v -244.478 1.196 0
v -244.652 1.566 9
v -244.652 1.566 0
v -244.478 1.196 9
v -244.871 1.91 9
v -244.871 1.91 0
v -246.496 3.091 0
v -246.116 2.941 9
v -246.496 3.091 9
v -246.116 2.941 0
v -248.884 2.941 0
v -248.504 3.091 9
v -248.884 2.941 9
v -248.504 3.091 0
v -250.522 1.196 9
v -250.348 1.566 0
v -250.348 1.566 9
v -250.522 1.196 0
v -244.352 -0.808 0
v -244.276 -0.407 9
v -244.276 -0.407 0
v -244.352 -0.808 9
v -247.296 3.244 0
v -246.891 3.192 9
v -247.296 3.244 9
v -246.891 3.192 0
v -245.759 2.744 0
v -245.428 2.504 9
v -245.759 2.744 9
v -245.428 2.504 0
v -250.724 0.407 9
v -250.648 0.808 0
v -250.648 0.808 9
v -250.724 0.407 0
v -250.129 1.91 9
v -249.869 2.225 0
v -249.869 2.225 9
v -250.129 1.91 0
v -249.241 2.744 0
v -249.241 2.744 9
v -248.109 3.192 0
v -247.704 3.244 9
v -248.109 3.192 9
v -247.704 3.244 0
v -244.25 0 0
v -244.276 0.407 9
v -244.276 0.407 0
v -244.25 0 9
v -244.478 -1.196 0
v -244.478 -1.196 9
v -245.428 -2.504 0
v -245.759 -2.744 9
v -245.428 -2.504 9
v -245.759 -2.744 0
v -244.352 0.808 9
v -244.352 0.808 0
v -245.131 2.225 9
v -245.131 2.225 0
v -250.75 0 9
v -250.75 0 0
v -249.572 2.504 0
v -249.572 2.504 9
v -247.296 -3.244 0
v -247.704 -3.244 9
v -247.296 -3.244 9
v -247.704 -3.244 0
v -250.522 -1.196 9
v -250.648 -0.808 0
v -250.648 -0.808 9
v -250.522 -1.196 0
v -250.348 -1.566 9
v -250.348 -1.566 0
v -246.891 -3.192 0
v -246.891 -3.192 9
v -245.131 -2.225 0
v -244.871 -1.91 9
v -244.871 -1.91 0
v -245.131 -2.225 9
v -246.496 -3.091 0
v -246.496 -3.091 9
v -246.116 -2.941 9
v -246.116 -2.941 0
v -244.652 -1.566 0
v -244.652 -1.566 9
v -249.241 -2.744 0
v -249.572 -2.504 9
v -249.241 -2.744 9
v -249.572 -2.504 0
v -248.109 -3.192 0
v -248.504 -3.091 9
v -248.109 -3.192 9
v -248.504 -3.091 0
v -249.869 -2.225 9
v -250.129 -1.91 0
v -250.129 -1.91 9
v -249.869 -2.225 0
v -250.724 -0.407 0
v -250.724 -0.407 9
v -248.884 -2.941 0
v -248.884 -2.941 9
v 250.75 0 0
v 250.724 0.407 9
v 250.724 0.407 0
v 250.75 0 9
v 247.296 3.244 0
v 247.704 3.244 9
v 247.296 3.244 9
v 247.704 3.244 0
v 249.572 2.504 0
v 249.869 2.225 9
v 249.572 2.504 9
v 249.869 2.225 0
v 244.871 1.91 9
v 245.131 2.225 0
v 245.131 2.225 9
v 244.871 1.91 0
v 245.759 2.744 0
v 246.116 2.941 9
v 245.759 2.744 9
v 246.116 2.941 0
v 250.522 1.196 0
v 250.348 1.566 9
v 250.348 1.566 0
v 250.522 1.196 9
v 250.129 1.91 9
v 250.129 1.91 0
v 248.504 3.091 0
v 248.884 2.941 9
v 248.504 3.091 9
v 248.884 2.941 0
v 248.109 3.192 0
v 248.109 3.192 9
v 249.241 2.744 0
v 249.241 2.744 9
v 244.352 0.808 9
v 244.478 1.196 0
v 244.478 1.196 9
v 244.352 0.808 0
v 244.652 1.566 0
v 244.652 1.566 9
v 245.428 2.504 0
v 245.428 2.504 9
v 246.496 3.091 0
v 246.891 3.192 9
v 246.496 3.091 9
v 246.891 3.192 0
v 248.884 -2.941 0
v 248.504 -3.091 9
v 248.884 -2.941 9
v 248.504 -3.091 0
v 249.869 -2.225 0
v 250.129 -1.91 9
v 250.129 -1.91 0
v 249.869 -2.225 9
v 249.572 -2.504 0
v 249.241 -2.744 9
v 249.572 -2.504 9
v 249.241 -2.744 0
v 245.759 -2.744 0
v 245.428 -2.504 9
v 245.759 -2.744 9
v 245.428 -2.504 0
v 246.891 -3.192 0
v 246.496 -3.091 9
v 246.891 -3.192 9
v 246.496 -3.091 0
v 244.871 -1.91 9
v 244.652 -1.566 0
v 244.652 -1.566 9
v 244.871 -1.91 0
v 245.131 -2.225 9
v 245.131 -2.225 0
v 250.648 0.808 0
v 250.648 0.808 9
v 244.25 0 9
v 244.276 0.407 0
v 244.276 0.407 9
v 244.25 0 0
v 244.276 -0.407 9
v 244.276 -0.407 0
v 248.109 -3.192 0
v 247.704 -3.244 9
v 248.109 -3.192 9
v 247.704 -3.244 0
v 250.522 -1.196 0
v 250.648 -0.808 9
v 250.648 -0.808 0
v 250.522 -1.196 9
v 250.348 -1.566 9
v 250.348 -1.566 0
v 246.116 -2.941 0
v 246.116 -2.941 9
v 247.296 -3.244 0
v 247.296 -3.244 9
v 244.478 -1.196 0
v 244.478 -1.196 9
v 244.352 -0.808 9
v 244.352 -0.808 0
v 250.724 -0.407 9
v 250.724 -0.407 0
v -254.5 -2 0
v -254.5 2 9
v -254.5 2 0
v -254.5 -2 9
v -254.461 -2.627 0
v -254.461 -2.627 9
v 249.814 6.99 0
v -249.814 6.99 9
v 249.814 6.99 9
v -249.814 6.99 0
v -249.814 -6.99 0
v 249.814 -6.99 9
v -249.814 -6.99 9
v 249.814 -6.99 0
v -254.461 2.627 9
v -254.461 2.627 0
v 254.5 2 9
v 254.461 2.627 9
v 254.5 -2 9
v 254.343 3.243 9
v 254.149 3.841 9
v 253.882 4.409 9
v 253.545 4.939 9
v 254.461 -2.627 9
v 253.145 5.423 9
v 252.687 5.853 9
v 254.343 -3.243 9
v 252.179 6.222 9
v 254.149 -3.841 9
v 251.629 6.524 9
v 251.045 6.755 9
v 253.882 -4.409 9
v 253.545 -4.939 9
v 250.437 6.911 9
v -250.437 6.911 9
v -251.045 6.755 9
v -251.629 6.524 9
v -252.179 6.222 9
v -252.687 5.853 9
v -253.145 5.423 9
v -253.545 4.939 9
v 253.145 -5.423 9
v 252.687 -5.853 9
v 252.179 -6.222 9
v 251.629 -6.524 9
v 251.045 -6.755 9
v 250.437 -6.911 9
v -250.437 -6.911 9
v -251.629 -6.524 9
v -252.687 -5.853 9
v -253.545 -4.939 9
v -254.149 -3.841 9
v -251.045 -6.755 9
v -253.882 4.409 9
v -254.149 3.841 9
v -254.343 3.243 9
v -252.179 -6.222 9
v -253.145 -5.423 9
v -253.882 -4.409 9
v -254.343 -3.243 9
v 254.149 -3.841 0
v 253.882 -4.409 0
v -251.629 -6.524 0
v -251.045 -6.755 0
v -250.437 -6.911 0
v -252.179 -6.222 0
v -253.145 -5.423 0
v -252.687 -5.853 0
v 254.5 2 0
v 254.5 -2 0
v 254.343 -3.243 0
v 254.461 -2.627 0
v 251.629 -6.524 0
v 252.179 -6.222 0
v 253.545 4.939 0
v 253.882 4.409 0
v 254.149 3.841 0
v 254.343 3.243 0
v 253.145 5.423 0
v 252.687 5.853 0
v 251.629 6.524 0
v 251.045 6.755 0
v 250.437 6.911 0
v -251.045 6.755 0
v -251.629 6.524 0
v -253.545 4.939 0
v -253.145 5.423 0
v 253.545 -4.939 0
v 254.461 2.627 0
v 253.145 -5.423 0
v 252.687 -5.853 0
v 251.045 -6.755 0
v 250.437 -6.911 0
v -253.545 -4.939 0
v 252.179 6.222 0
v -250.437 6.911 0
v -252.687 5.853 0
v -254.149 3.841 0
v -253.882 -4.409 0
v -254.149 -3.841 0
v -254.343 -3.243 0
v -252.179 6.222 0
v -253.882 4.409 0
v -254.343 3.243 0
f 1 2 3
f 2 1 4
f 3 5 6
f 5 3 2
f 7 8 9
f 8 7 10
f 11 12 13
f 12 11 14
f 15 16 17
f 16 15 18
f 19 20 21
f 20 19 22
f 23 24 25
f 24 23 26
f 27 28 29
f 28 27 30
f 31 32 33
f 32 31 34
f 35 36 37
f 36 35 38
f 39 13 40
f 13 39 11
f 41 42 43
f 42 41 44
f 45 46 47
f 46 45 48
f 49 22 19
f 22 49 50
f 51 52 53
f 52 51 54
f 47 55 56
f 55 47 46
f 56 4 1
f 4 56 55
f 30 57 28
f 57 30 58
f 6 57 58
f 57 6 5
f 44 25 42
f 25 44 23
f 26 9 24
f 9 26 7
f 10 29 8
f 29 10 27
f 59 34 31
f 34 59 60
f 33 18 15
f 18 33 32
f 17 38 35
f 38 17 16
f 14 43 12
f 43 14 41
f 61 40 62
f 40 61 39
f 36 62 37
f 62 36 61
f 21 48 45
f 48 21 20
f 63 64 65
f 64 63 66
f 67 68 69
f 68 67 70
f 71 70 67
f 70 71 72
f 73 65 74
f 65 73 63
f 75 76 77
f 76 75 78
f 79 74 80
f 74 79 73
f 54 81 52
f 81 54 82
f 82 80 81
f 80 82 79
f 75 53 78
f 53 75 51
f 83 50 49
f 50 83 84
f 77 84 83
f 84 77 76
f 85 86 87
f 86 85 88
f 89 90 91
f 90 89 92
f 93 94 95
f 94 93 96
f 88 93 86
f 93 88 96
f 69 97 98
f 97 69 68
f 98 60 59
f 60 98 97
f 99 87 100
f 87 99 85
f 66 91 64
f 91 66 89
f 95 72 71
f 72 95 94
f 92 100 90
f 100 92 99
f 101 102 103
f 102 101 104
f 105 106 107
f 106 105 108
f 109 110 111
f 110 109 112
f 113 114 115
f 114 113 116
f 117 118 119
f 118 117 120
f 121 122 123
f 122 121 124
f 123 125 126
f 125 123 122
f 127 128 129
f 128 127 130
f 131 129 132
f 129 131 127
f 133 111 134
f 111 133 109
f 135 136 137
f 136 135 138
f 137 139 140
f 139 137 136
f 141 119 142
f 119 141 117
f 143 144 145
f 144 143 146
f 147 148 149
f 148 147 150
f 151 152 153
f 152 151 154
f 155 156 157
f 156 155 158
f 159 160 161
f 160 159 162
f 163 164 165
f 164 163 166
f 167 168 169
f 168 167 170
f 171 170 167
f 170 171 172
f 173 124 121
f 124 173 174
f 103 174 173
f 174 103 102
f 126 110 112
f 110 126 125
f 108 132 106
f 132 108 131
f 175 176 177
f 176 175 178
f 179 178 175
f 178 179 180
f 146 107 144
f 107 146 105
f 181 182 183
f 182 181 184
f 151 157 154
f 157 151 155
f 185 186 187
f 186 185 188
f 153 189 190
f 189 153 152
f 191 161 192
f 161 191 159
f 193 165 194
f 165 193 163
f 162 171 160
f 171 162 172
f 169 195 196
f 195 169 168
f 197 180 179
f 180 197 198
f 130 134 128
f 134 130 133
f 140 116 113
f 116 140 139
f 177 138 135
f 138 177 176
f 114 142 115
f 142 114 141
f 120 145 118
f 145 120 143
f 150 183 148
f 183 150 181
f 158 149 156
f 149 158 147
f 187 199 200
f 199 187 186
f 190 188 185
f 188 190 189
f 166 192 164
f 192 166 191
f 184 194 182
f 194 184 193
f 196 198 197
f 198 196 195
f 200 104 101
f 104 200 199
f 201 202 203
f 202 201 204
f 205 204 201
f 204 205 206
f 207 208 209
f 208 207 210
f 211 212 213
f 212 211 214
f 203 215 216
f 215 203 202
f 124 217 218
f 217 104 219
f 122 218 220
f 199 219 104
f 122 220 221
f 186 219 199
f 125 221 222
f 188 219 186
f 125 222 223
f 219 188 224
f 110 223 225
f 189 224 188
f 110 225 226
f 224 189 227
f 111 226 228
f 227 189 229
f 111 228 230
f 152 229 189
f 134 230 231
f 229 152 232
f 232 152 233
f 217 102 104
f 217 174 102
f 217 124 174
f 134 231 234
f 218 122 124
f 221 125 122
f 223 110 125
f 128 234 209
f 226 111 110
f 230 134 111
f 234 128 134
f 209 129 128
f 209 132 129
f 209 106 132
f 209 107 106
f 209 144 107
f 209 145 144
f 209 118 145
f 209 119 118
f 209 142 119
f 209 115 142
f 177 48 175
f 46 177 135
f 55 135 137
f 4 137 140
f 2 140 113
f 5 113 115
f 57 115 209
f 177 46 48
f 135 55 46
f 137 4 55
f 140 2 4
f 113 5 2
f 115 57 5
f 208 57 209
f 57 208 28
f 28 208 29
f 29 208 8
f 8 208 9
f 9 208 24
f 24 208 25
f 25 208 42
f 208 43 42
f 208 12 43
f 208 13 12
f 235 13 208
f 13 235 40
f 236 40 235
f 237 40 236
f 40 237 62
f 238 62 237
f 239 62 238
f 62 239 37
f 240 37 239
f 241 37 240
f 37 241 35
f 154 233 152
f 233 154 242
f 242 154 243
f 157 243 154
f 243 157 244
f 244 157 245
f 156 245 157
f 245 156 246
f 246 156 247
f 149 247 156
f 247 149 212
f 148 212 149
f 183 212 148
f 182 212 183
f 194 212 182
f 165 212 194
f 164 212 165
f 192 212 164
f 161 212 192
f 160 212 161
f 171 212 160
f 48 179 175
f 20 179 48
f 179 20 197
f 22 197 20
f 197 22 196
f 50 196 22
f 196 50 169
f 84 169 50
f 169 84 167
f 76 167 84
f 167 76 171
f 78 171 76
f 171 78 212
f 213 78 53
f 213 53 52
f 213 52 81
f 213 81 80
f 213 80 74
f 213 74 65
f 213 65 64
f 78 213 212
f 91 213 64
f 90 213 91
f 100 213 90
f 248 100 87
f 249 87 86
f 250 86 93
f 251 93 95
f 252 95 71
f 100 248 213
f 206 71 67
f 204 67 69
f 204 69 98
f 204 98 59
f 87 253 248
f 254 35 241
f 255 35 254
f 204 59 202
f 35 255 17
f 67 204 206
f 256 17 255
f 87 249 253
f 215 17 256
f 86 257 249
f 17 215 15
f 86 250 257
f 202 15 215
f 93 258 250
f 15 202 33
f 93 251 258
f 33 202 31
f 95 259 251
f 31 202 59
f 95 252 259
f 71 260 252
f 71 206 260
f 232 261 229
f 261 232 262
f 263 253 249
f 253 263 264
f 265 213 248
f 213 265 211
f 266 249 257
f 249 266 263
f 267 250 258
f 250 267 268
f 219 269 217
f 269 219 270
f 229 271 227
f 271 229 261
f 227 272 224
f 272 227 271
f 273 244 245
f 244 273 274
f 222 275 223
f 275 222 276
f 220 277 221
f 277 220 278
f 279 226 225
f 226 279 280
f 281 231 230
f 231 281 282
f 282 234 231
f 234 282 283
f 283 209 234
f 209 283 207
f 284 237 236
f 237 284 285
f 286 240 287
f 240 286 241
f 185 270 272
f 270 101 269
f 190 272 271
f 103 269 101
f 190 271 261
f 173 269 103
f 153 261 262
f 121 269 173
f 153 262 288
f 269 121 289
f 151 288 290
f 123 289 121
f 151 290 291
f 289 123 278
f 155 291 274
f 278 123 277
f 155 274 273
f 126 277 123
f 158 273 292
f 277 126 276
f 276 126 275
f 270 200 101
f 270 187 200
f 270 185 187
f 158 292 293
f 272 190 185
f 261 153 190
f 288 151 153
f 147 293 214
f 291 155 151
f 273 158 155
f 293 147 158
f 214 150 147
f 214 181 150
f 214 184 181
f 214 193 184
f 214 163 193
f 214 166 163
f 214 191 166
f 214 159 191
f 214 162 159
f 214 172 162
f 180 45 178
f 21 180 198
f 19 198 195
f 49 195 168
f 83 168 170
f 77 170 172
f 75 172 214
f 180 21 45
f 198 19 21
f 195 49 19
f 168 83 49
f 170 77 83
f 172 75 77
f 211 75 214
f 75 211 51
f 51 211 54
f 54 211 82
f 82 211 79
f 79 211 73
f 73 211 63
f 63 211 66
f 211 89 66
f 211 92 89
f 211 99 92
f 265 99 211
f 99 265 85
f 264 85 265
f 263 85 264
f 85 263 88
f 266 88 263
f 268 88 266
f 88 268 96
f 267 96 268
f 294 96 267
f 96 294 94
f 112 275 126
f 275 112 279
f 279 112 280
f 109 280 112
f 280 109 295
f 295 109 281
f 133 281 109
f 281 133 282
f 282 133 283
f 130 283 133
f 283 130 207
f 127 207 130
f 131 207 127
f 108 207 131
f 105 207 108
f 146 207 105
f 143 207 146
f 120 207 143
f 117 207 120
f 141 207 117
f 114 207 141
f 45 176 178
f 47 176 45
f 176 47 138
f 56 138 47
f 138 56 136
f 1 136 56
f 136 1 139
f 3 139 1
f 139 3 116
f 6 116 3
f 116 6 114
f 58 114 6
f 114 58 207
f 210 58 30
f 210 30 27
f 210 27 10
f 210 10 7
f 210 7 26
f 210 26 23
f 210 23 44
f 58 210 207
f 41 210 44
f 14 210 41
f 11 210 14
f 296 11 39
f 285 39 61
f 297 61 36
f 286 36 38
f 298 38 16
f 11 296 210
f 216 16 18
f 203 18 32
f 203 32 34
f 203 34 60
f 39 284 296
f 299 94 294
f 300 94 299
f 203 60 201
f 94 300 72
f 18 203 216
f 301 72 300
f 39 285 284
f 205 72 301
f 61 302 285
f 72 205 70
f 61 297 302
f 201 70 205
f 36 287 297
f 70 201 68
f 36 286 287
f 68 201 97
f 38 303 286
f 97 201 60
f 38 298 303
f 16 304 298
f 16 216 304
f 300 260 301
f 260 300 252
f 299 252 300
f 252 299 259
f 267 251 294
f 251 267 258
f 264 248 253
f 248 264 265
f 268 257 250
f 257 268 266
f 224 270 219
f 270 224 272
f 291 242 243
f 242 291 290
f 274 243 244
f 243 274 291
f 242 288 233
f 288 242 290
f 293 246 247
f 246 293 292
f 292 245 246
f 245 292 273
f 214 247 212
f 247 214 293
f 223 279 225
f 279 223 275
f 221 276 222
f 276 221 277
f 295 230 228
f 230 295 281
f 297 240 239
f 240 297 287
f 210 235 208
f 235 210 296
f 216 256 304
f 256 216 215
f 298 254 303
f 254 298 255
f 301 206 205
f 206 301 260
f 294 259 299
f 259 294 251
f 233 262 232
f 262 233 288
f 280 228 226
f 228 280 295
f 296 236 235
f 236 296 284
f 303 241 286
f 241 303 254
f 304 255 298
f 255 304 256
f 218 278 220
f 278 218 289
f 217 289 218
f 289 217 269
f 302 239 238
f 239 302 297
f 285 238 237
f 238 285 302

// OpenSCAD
$fn = 50;


difference() {
	union() {
		hull() {
			translate(v = [-249.5000000000, 2.0000000000, 0]) {
				cylinder(h = 9, r = 5);
			}
			translate(v = [249.5000000000, 2.0000000000, 0]) {
				cylinder(h = 9, r = 5);
			}
			translate(v = [-249.5000000000, -2.0000000000, 0]) {
				cylinder(h = 9, r = 5);
			}
			translate(v = [249.5000000000, -2.0000000000, 0]) {
				cylinder(h = 9, r = 5);
			}
		}
	}
	union() {
		translate(v = [-247.5000000000, 0.0000000000, 0]) {
			cylinder(h = 9, r = 3.2500000000);
		}
		translate(v = [247.5000000000, 0.0000000000, 0]) {
			cylinder(h = 9, r = 3.2500000000);
		}
		translate(v = [-247.5000000000, 0.0000000000, 0]) {
			cylinder(h = 9, r = 1.8000000000);
		}
		translate(v = [247.5000000000, 0.0000000000, 0]) {
			cylinder(h = 9, r = 1.8000000000);
		}
		translate(v = [-247.5000000000, 0.0000000000, 0]) {
			cylinder(h = 9, r = 1.8000000000);
		}
		translate(v = [247.5000000000, 0.0000000000, 0]) {
			cylinder(h = 9, r = 1.8000000000);
		}
		translate(v = [-247.5000000000, 0.0000000000, 0]) {
			cylinder(h = 9, r = 1.8000000000);
		}
		translate(v = [247.5000000000, 0.0000000000, 0]) {
			cylinder(h = 9, r = 1.8000000000);
		}
	}
}
